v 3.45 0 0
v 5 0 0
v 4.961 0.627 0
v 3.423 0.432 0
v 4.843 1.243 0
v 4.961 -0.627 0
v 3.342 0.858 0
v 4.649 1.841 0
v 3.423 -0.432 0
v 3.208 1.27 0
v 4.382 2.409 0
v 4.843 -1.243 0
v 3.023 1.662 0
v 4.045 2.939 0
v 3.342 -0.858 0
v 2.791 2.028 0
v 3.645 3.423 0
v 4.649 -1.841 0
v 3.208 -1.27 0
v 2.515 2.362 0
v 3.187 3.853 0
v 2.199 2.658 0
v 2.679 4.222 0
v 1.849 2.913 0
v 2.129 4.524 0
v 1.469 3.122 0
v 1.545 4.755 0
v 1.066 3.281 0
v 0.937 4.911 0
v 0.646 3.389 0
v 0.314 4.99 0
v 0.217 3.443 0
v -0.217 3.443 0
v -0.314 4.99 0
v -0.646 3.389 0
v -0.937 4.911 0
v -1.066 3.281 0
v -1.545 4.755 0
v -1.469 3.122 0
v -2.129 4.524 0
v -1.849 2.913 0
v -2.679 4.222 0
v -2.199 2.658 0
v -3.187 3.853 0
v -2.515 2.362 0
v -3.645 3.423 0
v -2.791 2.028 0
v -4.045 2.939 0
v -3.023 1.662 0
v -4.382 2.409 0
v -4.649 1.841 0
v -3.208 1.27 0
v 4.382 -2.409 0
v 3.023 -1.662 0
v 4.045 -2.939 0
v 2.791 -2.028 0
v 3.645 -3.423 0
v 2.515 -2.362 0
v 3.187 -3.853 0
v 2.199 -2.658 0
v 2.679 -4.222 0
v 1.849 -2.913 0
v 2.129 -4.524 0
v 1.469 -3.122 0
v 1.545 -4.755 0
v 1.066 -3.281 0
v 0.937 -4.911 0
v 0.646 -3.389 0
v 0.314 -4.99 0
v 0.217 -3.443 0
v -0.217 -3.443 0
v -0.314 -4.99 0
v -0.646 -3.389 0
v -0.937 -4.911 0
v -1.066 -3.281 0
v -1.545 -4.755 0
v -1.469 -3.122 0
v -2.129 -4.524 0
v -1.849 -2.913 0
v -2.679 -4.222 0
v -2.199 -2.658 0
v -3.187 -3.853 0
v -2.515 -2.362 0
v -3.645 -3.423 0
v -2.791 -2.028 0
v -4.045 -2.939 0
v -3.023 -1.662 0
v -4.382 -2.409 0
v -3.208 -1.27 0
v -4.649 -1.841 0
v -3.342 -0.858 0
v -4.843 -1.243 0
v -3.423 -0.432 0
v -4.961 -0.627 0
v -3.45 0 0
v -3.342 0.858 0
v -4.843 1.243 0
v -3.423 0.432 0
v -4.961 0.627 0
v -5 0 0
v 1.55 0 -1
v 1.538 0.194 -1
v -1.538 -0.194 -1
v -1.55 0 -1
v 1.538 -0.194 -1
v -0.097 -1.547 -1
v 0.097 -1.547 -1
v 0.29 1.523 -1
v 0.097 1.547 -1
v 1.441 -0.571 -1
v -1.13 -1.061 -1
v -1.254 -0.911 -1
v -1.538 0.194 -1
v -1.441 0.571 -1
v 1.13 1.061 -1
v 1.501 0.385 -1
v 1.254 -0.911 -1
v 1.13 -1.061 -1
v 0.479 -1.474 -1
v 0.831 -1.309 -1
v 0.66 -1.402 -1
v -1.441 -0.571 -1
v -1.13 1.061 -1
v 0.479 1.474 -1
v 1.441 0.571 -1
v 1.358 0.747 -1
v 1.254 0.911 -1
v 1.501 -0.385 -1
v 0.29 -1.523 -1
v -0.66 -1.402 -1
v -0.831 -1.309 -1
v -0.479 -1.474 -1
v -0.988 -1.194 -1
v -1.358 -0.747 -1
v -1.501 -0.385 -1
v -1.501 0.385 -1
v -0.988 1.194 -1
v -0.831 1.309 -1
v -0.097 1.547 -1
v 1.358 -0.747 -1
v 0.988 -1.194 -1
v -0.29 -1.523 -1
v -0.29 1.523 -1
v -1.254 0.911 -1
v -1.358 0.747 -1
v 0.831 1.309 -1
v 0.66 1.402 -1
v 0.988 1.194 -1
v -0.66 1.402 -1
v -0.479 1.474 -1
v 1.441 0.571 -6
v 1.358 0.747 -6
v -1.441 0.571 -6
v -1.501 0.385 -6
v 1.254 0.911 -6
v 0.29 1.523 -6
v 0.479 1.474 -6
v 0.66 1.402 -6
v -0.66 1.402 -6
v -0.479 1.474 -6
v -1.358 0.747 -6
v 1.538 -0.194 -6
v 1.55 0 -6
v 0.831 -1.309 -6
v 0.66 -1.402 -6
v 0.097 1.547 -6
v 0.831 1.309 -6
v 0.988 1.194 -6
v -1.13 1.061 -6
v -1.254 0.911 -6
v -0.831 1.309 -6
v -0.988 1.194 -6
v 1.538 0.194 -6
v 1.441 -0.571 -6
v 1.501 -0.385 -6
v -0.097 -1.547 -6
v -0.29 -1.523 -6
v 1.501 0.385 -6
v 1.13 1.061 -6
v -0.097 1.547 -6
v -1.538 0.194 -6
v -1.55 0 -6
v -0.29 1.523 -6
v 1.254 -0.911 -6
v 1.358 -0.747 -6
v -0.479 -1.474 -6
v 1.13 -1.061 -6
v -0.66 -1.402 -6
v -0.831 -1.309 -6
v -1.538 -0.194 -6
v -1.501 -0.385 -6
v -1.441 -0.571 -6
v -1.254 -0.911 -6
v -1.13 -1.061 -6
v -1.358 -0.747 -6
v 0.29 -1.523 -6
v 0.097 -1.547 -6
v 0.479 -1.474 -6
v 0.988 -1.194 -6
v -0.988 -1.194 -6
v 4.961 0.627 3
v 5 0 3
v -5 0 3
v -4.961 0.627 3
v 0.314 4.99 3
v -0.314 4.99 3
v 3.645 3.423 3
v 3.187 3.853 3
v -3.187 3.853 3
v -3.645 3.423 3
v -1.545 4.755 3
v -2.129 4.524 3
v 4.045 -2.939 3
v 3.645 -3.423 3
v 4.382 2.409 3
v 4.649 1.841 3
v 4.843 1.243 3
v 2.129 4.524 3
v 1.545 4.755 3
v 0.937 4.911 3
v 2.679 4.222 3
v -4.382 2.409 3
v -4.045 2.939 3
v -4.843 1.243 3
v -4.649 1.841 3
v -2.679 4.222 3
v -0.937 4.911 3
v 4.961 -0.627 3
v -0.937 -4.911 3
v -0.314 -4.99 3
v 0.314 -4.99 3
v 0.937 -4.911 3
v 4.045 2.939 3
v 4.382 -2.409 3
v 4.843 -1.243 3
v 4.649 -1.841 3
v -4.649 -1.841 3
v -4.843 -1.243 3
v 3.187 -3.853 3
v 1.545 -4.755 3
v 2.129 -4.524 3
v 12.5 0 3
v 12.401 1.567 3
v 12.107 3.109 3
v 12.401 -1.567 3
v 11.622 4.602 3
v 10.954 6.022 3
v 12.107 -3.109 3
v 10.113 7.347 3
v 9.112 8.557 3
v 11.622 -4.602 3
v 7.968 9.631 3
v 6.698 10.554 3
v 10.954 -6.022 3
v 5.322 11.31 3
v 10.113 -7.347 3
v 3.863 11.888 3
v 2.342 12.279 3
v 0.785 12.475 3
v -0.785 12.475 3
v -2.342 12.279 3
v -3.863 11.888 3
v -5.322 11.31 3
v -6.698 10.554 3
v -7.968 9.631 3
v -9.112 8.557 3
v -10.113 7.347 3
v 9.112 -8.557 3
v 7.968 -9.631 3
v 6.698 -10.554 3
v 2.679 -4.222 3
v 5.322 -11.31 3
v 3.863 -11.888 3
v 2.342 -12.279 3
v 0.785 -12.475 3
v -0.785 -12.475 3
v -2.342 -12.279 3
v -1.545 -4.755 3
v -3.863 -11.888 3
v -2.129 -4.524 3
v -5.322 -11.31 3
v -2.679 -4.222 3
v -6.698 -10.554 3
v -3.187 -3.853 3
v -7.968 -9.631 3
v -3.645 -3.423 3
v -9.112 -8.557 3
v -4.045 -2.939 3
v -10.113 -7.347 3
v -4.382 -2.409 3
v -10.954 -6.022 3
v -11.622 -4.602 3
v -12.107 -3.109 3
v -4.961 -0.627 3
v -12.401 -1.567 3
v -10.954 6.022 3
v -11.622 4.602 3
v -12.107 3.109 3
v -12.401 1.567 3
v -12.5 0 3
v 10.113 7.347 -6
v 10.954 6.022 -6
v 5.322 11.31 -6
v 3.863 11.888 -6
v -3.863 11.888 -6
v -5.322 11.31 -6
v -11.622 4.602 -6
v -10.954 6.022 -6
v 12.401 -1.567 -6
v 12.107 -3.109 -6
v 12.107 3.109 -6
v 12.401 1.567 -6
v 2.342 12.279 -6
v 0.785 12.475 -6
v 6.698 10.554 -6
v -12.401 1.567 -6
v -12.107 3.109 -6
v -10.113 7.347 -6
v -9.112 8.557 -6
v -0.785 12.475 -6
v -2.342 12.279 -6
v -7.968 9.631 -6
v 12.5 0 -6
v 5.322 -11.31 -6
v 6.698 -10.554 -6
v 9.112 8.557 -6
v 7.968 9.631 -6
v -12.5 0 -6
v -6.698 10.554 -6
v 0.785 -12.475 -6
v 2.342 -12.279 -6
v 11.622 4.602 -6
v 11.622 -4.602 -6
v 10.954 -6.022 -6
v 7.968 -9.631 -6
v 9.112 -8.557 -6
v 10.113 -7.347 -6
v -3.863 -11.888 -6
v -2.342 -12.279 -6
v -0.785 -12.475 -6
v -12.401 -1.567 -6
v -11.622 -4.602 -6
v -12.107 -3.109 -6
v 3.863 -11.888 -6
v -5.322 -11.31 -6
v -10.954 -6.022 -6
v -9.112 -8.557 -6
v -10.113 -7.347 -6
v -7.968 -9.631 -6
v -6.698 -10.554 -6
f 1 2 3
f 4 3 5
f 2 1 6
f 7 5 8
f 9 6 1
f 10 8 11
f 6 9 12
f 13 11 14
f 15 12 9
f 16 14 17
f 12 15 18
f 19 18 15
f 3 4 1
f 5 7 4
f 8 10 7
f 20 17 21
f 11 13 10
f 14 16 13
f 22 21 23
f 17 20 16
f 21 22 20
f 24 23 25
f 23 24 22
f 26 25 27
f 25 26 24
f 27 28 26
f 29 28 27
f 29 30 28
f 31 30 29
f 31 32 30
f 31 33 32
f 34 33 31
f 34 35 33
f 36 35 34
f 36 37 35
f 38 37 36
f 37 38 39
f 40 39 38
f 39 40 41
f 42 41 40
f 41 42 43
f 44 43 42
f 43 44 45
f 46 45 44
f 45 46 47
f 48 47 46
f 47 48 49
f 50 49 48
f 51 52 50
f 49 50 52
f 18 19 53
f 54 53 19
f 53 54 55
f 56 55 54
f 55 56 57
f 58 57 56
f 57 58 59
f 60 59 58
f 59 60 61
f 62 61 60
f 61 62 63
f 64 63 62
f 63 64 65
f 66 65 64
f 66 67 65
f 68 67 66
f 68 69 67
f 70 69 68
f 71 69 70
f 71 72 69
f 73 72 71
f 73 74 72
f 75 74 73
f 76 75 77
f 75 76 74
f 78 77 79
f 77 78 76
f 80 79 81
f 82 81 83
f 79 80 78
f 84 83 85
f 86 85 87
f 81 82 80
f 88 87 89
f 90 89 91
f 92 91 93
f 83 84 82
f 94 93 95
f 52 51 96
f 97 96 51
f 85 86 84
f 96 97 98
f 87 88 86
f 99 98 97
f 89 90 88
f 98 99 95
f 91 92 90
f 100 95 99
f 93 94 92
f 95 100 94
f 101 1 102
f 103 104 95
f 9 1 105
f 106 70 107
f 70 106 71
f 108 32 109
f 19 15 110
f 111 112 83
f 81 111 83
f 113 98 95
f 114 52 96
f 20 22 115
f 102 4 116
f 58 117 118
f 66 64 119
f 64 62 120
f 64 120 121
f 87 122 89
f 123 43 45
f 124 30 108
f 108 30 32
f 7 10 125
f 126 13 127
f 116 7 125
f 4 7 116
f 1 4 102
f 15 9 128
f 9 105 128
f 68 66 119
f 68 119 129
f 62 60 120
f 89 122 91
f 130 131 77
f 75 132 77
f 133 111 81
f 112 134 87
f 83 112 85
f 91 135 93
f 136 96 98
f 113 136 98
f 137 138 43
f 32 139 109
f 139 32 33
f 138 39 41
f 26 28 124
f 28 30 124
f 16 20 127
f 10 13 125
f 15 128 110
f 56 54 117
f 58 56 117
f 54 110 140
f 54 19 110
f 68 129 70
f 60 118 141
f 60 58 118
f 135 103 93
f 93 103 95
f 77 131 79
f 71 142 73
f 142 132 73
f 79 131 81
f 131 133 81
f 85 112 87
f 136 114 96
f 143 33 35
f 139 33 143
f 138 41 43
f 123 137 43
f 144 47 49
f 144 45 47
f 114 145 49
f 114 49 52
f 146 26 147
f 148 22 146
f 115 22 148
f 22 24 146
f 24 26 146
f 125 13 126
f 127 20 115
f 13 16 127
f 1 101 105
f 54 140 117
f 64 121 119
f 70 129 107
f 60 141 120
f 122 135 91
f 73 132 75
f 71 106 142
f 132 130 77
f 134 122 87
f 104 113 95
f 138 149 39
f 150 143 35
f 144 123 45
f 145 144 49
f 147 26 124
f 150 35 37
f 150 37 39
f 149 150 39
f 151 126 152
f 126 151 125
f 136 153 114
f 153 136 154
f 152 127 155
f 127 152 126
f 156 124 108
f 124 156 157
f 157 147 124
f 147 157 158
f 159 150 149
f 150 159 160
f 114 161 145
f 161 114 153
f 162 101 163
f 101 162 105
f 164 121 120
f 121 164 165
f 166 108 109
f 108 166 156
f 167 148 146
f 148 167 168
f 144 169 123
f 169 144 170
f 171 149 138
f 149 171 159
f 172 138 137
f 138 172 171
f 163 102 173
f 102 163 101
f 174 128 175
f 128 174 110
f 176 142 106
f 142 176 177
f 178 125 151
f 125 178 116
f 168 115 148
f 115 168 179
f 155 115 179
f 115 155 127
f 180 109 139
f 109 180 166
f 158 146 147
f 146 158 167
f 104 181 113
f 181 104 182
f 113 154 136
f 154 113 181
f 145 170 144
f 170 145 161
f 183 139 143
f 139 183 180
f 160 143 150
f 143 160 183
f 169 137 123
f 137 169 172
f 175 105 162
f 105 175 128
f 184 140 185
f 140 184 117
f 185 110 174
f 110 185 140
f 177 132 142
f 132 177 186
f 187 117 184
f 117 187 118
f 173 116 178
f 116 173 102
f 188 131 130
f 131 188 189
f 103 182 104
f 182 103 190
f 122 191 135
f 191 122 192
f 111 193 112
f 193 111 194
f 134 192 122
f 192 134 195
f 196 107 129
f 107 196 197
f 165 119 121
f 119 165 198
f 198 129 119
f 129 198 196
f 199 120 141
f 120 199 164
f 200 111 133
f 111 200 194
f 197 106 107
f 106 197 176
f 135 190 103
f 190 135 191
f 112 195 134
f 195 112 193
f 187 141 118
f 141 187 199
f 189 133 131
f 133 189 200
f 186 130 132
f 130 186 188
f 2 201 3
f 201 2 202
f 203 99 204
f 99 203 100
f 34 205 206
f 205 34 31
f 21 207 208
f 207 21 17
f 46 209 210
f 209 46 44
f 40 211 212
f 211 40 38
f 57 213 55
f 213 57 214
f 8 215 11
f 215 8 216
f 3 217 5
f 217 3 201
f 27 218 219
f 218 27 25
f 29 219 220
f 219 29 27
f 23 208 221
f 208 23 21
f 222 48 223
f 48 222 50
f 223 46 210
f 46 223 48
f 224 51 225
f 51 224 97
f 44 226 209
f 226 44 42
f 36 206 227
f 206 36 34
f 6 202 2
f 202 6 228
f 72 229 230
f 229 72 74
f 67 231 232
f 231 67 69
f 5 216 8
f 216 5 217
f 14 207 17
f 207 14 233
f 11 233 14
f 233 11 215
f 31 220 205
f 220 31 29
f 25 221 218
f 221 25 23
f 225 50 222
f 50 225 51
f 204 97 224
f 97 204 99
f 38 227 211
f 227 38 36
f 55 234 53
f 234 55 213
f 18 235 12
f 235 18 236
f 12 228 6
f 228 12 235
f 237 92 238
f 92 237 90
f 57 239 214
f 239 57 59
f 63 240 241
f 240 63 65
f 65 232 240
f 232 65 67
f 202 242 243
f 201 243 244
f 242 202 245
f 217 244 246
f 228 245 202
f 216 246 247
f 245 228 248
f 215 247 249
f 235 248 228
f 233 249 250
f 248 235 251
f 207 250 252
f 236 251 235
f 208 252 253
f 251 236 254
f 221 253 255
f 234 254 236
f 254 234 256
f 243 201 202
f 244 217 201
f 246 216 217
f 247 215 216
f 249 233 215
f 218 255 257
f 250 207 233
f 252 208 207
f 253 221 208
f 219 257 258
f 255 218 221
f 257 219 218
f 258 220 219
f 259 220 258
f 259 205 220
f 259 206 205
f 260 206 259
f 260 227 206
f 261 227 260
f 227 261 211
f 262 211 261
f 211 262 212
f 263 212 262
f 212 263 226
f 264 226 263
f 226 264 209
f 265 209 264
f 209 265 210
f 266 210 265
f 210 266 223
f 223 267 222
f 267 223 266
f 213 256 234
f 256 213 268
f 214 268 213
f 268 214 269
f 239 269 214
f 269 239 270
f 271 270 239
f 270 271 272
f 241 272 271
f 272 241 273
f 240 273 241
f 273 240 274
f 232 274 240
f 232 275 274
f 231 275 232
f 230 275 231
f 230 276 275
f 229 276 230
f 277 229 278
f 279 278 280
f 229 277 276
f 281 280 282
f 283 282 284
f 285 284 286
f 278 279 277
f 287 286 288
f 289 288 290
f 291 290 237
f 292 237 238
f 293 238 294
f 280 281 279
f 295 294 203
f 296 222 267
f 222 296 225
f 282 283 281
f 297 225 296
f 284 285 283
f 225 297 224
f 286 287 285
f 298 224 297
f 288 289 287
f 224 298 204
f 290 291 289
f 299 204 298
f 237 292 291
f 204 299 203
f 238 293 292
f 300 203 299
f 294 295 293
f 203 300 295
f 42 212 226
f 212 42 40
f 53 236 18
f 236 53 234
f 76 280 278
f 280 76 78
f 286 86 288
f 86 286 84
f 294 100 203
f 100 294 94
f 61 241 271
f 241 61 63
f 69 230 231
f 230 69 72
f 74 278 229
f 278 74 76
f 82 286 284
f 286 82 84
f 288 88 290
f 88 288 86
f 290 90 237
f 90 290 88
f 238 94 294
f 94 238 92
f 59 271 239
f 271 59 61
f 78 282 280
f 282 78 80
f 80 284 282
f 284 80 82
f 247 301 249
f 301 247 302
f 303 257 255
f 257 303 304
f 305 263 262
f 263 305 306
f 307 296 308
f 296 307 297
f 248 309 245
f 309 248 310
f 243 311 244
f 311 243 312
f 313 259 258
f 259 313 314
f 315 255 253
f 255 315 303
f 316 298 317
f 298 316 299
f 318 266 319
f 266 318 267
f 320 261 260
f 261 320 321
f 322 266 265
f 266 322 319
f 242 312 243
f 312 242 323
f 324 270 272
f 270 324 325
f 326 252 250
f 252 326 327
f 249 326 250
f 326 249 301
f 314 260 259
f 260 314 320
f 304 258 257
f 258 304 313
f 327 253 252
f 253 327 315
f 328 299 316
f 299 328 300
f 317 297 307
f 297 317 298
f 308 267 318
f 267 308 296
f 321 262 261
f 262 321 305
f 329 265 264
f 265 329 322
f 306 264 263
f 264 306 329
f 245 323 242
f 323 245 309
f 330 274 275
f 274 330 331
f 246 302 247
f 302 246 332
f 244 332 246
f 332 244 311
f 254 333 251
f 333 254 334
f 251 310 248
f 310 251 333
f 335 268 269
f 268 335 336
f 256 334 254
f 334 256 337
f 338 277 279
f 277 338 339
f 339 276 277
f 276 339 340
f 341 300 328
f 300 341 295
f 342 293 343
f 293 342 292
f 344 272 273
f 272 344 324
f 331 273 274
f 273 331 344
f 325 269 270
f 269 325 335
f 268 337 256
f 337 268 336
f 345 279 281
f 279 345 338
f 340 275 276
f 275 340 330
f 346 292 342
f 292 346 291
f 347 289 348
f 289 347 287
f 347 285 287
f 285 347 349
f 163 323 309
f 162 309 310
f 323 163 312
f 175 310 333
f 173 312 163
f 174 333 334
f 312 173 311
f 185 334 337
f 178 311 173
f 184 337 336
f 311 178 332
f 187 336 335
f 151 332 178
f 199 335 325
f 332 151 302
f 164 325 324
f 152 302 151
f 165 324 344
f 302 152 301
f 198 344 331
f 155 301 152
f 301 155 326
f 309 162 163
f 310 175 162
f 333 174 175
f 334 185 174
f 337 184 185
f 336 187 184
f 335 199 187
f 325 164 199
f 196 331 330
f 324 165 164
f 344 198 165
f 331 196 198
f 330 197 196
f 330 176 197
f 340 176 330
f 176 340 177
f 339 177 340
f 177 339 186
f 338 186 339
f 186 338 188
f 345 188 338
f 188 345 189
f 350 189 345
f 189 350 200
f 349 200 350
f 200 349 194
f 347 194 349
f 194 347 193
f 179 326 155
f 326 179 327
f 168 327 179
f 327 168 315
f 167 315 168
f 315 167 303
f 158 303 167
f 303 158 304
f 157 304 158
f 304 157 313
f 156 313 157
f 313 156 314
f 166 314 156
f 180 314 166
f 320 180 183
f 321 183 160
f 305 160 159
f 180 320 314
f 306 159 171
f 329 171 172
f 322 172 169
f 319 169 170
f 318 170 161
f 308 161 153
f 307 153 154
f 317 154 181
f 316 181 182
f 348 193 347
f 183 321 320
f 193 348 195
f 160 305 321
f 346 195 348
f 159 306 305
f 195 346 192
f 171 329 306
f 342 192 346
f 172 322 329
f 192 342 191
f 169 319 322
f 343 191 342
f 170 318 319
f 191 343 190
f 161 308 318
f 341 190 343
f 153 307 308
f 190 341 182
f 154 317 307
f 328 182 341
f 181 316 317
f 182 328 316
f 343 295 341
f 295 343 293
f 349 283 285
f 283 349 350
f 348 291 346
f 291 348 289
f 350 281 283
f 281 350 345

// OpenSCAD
$fn = 50;


difference() {
	union() {
		translate(v = [0, 0, -6.0000000000]) {
			cylinder(h = 9, r = 12.5000000000);
		}
	}
	union() {
		translate(v = [0, 0, 0]) {
			rotate(a = [0, 0, 0]) {
				difference() {
					union() {
						translate(v = [0, 0, -9.0000000000]) {
							cylinder(h = 9, r = 1.2500000000);
						}
						translate(v = [0, 0, -1.0000000000]) {
							cylinder(h = 1.0000000000, r1 = 1.5500000000, r2 = 3.4500000000);
						}
						translate(v = [0, 0, -9.0000000000]) {
							cylinder(h = 9, r = 1.5500000000);
						}
						translate(v = [0, 0, -9.0000000000]) {
							cylinder(h = 9, r = 1.2500000000);
						}
					}
					union();
				}
			}
		}
		#cylinder(h = 3, r = 5.0000000000);
	}
}
